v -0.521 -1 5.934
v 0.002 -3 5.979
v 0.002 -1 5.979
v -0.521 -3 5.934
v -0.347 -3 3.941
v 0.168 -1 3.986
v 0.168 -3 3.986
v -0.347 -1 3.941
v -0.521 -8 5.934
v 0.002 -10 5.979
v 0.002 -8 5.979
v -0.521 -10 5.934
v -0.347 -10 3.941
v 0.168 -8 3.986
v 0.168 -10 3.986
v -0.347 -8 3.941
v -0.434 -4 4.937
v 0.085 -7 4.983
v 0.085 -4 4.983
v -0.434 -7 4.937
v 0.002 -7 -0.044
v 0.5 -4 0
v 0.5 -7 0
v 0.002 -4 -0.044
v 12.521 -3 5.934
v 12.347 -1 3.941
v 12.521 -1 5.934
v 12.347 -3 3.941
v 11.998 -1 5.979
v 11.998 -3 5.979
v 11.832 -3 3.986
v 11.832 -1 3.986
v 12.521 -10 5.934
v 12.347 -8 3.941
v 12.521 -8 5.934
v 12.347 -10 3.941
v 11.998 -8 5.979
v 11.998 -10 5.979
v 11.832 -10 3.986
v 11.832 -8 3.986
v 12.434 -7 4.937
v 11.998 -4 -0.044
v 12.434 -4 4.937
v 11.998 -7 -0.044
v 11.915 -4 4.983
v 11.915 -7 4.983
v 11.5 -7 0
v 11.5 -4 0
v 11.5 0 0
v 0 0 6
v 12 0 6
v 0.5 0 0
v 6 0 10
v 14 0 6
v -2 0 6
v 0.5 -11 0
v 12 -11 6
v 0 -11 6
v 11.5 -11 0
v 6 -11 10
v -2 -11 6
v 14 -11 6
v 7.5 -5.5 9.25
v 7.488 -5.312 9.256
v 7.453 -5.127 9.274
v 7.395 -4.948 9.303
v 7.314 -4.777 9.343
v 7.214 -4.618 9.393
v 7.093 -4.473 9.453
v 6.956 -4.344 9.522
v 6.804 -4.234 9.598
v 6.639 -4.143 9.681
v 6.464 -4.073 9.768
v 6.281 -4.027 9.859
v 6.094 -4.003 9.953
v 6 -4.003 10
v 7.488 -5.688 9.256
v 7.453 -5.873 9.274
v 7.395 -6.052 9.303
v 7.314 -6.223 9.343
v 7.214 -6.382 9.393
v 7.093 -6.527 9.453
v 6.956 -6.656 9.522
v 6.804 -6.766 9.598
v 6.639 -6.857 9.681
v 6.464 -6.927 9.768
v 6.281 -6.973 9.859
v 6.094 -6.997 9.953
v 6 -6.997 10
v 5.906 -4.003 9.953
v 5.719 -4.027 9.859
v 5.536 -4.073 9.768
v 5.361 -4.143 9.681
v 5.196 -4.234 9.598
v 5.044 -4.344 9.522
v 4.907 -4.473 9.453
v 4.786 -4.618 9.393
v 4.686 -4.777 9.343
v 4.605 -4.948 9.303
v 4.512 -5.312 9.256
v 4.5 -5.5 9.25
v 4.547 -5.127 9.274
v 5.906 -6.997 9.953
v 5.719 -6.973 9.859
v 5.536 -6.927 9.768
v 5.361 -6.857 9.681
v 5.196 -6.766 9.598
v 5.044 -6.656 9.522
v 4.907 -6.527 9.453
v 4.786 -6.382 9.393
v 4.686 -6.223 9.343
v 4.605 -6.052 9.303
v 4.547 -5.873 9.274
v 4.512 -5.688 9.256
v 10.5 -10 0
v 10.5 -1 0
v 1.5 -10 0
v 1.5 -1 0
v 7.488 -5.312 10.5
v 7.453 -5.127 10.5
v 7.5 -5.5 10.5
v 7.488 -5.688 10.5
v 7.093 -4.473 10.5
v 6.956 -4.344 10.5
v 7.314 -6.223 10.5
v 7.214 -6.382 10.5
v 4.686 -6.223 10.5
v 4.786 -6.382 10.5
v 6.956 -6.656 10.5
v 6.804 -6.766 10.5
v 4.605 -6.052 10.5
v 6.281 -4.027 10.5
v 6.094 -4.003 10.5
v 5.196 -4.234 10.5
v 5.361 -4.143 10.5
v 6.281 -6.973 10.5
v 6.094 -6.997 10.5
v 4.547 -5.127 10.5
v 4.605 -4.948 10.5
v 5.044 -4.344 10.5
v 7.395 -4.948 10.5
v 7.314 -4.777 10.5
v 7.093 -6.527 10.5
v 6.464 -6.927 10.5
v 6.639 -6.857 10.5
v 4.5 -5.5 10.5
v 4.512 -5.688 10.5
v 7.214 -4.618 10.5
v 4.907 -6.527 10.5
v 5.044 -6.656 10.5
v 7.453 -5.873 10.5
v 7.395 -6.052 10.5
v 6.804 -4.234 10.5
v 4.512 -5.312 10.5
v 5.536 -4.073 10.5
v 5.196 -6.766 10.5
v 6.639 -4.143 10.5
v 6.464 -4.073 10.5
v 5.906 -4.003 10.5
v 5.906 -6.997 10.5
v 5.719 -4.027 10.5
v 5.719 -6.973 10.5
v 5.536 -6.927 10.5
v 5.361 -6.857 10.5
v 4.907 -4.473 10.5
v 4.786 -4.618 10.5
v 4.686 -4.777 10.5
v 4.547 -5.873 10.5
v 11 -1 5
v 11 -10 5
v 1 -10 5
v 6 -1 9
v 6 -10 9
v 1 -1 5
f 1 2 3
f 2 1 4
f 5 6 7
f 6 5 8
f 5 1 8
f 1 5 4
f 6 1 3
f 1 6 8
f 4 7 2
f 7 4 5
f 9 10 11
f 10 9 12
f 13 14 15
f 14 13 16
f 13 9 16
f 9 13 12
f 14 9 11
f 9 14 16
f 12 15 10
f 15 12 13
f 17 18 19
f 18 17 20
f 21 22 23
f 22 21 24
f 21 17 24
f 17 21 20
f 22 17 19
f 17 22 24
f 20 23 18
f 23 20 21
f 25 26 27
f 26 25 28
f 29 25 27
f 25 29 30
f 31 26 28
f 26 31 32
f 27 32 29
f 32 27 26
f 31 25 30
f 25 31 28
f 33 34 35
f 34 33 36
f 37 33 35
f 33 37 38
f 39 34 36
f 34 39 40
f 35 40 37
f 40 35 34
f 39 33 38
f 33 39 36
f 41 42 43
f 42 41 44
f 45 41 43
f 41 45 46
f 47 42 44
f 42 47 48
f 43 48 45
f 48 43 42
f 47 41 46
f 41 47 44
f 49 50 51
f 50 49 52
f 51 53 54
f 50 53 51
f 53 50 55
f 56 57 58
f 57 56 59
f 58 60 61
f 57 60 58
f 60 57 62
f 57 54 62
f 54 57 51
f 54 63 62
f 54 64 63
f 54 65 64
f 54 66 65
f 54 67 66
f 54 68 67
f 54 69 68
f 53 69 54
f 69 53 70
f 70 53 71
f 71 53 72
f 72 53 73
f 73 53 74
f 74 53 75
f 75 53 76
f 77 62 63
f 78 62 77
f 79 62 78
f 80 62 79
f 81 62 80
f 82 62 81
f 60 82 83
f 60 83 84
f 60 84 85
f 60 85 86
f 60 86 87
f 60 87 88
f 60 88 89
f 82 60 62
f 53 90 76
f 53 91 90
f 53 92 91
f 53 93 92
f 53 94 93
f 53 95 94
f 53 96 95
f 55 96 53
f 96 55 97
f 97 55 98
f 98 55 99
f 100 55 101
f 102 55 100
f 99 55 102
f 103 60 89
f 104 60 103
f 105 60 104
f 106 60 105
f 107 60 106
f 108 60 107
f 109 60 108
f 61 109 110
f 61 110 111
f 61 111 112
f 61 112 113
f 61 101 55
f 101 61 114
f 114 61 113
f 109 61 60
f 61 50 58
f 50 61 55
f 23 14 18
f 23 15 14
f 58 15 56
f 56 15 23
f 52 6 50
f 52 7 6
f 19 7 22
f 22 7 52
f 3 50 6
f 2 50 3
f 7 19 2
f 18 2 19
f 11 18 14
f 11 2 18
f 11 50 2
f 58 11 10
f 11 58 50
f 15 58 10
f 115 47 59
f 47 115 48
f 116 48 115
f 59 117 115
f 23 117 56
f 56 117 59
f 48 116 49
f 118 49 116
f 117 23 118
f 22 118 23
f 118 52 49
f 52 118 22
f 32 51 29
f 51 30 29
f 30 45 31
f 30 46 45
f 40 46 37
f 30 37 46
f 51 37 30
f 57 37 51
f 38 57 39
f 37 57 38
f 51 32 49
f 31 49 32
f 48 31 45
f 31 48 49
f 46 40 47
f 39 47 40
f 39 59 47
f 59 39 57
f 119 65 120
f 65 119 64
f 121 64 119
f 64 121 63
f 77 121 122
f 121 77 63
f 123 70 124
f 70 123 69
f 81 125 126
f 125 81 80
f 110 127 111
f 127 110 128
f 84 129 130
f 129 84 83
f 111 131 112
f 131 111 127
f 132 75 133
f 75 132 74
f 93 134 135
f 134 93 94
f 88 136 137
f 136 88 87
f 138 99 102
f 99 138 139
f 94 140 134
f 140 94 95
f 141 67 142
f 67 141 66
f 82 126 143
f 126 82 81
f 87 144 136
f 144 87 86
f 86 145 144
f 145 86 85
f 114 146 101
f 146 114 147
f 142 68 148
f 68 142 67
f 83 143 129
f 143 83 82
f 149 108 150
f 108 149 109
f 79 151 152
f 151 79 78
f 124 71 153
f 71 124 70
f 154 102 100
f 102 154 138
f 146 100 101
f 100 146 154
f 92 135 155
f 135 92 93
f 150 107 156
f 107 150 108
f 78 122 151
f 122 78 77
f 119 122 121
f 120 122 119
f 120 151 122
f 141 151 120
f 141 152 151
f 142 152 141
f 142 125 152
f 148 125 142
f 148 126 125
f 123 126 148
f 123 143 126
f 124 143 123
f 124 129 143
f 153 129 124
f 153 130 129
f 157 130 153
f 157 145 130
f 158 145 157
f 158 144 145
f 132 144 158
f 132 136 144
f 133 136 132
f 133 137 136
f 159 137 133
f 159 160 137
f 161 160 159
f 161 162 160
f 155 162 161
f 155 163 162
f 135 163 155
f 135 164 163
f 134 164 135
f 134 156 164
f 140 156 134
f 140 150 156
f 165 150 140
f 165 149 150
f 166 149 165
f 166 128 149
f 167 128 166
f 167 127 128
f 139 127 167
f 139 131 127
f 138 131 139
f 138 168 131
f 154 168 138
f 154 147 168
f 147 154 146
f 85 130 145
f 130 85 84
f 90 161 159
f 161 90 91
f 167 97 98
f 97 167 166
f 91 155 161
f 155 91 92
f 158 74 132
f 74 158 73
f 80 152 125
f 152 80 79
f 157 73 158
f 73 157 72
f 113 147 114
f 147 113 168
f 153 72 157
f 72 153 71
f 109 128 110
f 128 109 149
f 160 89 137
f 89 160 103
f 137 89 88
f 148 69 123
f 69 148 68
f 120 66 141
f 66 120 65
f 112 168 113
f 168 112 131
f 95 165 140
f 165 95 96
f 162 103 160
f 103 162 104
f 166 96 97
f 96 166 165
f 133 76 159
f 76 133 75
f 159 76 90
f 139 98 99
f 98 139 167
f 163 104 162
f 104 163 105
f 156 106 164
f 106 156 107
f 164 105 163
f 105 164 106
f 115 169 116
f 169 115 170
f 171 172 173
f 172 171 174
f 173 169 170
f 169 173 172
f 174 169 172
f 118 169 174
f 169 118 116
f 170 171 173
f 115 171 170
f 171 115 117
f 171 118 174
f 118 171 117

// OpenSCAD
$fn=50;

difference() {
    union() {
        //house
        rotate([90, 0, 0]) linear_extrude(11) {
            polygon([[0.5,0], [0, 6], [-2, 6], [6, 10], [14, 6], [12, 6], [11.5, 0]]);
        }
        //chimney
        translate([6,-5.5]) cylinder(h=10.5, d=3);
    }
    //hollow inside
    translate([0, -1, 0]) rotate([90, 0, 0]) linear_extrude(9) {
            polygon([[1.5,0], [1, 5], [6, 9], [11, 5], [10.5, 0]]);
        }
}
//windows and door
module door_and_windows() {
    translate([-0.5, -3, 4]) color("black") cube([1, 2, 2], center=false);
    translate([-0.5, -10, 4]) color("black") cube([1, 2, 2], center=false);
    translate([-0.5, -7, 0]) color("black") cube([1, 3, 5], center=false);
}

translate([0.5, 0, 0]) rotate([0, -5, 0]) door_and_windows();
translate([11.5, 0, 0]) rotate([0, 5, 0]) door_and_windows();
